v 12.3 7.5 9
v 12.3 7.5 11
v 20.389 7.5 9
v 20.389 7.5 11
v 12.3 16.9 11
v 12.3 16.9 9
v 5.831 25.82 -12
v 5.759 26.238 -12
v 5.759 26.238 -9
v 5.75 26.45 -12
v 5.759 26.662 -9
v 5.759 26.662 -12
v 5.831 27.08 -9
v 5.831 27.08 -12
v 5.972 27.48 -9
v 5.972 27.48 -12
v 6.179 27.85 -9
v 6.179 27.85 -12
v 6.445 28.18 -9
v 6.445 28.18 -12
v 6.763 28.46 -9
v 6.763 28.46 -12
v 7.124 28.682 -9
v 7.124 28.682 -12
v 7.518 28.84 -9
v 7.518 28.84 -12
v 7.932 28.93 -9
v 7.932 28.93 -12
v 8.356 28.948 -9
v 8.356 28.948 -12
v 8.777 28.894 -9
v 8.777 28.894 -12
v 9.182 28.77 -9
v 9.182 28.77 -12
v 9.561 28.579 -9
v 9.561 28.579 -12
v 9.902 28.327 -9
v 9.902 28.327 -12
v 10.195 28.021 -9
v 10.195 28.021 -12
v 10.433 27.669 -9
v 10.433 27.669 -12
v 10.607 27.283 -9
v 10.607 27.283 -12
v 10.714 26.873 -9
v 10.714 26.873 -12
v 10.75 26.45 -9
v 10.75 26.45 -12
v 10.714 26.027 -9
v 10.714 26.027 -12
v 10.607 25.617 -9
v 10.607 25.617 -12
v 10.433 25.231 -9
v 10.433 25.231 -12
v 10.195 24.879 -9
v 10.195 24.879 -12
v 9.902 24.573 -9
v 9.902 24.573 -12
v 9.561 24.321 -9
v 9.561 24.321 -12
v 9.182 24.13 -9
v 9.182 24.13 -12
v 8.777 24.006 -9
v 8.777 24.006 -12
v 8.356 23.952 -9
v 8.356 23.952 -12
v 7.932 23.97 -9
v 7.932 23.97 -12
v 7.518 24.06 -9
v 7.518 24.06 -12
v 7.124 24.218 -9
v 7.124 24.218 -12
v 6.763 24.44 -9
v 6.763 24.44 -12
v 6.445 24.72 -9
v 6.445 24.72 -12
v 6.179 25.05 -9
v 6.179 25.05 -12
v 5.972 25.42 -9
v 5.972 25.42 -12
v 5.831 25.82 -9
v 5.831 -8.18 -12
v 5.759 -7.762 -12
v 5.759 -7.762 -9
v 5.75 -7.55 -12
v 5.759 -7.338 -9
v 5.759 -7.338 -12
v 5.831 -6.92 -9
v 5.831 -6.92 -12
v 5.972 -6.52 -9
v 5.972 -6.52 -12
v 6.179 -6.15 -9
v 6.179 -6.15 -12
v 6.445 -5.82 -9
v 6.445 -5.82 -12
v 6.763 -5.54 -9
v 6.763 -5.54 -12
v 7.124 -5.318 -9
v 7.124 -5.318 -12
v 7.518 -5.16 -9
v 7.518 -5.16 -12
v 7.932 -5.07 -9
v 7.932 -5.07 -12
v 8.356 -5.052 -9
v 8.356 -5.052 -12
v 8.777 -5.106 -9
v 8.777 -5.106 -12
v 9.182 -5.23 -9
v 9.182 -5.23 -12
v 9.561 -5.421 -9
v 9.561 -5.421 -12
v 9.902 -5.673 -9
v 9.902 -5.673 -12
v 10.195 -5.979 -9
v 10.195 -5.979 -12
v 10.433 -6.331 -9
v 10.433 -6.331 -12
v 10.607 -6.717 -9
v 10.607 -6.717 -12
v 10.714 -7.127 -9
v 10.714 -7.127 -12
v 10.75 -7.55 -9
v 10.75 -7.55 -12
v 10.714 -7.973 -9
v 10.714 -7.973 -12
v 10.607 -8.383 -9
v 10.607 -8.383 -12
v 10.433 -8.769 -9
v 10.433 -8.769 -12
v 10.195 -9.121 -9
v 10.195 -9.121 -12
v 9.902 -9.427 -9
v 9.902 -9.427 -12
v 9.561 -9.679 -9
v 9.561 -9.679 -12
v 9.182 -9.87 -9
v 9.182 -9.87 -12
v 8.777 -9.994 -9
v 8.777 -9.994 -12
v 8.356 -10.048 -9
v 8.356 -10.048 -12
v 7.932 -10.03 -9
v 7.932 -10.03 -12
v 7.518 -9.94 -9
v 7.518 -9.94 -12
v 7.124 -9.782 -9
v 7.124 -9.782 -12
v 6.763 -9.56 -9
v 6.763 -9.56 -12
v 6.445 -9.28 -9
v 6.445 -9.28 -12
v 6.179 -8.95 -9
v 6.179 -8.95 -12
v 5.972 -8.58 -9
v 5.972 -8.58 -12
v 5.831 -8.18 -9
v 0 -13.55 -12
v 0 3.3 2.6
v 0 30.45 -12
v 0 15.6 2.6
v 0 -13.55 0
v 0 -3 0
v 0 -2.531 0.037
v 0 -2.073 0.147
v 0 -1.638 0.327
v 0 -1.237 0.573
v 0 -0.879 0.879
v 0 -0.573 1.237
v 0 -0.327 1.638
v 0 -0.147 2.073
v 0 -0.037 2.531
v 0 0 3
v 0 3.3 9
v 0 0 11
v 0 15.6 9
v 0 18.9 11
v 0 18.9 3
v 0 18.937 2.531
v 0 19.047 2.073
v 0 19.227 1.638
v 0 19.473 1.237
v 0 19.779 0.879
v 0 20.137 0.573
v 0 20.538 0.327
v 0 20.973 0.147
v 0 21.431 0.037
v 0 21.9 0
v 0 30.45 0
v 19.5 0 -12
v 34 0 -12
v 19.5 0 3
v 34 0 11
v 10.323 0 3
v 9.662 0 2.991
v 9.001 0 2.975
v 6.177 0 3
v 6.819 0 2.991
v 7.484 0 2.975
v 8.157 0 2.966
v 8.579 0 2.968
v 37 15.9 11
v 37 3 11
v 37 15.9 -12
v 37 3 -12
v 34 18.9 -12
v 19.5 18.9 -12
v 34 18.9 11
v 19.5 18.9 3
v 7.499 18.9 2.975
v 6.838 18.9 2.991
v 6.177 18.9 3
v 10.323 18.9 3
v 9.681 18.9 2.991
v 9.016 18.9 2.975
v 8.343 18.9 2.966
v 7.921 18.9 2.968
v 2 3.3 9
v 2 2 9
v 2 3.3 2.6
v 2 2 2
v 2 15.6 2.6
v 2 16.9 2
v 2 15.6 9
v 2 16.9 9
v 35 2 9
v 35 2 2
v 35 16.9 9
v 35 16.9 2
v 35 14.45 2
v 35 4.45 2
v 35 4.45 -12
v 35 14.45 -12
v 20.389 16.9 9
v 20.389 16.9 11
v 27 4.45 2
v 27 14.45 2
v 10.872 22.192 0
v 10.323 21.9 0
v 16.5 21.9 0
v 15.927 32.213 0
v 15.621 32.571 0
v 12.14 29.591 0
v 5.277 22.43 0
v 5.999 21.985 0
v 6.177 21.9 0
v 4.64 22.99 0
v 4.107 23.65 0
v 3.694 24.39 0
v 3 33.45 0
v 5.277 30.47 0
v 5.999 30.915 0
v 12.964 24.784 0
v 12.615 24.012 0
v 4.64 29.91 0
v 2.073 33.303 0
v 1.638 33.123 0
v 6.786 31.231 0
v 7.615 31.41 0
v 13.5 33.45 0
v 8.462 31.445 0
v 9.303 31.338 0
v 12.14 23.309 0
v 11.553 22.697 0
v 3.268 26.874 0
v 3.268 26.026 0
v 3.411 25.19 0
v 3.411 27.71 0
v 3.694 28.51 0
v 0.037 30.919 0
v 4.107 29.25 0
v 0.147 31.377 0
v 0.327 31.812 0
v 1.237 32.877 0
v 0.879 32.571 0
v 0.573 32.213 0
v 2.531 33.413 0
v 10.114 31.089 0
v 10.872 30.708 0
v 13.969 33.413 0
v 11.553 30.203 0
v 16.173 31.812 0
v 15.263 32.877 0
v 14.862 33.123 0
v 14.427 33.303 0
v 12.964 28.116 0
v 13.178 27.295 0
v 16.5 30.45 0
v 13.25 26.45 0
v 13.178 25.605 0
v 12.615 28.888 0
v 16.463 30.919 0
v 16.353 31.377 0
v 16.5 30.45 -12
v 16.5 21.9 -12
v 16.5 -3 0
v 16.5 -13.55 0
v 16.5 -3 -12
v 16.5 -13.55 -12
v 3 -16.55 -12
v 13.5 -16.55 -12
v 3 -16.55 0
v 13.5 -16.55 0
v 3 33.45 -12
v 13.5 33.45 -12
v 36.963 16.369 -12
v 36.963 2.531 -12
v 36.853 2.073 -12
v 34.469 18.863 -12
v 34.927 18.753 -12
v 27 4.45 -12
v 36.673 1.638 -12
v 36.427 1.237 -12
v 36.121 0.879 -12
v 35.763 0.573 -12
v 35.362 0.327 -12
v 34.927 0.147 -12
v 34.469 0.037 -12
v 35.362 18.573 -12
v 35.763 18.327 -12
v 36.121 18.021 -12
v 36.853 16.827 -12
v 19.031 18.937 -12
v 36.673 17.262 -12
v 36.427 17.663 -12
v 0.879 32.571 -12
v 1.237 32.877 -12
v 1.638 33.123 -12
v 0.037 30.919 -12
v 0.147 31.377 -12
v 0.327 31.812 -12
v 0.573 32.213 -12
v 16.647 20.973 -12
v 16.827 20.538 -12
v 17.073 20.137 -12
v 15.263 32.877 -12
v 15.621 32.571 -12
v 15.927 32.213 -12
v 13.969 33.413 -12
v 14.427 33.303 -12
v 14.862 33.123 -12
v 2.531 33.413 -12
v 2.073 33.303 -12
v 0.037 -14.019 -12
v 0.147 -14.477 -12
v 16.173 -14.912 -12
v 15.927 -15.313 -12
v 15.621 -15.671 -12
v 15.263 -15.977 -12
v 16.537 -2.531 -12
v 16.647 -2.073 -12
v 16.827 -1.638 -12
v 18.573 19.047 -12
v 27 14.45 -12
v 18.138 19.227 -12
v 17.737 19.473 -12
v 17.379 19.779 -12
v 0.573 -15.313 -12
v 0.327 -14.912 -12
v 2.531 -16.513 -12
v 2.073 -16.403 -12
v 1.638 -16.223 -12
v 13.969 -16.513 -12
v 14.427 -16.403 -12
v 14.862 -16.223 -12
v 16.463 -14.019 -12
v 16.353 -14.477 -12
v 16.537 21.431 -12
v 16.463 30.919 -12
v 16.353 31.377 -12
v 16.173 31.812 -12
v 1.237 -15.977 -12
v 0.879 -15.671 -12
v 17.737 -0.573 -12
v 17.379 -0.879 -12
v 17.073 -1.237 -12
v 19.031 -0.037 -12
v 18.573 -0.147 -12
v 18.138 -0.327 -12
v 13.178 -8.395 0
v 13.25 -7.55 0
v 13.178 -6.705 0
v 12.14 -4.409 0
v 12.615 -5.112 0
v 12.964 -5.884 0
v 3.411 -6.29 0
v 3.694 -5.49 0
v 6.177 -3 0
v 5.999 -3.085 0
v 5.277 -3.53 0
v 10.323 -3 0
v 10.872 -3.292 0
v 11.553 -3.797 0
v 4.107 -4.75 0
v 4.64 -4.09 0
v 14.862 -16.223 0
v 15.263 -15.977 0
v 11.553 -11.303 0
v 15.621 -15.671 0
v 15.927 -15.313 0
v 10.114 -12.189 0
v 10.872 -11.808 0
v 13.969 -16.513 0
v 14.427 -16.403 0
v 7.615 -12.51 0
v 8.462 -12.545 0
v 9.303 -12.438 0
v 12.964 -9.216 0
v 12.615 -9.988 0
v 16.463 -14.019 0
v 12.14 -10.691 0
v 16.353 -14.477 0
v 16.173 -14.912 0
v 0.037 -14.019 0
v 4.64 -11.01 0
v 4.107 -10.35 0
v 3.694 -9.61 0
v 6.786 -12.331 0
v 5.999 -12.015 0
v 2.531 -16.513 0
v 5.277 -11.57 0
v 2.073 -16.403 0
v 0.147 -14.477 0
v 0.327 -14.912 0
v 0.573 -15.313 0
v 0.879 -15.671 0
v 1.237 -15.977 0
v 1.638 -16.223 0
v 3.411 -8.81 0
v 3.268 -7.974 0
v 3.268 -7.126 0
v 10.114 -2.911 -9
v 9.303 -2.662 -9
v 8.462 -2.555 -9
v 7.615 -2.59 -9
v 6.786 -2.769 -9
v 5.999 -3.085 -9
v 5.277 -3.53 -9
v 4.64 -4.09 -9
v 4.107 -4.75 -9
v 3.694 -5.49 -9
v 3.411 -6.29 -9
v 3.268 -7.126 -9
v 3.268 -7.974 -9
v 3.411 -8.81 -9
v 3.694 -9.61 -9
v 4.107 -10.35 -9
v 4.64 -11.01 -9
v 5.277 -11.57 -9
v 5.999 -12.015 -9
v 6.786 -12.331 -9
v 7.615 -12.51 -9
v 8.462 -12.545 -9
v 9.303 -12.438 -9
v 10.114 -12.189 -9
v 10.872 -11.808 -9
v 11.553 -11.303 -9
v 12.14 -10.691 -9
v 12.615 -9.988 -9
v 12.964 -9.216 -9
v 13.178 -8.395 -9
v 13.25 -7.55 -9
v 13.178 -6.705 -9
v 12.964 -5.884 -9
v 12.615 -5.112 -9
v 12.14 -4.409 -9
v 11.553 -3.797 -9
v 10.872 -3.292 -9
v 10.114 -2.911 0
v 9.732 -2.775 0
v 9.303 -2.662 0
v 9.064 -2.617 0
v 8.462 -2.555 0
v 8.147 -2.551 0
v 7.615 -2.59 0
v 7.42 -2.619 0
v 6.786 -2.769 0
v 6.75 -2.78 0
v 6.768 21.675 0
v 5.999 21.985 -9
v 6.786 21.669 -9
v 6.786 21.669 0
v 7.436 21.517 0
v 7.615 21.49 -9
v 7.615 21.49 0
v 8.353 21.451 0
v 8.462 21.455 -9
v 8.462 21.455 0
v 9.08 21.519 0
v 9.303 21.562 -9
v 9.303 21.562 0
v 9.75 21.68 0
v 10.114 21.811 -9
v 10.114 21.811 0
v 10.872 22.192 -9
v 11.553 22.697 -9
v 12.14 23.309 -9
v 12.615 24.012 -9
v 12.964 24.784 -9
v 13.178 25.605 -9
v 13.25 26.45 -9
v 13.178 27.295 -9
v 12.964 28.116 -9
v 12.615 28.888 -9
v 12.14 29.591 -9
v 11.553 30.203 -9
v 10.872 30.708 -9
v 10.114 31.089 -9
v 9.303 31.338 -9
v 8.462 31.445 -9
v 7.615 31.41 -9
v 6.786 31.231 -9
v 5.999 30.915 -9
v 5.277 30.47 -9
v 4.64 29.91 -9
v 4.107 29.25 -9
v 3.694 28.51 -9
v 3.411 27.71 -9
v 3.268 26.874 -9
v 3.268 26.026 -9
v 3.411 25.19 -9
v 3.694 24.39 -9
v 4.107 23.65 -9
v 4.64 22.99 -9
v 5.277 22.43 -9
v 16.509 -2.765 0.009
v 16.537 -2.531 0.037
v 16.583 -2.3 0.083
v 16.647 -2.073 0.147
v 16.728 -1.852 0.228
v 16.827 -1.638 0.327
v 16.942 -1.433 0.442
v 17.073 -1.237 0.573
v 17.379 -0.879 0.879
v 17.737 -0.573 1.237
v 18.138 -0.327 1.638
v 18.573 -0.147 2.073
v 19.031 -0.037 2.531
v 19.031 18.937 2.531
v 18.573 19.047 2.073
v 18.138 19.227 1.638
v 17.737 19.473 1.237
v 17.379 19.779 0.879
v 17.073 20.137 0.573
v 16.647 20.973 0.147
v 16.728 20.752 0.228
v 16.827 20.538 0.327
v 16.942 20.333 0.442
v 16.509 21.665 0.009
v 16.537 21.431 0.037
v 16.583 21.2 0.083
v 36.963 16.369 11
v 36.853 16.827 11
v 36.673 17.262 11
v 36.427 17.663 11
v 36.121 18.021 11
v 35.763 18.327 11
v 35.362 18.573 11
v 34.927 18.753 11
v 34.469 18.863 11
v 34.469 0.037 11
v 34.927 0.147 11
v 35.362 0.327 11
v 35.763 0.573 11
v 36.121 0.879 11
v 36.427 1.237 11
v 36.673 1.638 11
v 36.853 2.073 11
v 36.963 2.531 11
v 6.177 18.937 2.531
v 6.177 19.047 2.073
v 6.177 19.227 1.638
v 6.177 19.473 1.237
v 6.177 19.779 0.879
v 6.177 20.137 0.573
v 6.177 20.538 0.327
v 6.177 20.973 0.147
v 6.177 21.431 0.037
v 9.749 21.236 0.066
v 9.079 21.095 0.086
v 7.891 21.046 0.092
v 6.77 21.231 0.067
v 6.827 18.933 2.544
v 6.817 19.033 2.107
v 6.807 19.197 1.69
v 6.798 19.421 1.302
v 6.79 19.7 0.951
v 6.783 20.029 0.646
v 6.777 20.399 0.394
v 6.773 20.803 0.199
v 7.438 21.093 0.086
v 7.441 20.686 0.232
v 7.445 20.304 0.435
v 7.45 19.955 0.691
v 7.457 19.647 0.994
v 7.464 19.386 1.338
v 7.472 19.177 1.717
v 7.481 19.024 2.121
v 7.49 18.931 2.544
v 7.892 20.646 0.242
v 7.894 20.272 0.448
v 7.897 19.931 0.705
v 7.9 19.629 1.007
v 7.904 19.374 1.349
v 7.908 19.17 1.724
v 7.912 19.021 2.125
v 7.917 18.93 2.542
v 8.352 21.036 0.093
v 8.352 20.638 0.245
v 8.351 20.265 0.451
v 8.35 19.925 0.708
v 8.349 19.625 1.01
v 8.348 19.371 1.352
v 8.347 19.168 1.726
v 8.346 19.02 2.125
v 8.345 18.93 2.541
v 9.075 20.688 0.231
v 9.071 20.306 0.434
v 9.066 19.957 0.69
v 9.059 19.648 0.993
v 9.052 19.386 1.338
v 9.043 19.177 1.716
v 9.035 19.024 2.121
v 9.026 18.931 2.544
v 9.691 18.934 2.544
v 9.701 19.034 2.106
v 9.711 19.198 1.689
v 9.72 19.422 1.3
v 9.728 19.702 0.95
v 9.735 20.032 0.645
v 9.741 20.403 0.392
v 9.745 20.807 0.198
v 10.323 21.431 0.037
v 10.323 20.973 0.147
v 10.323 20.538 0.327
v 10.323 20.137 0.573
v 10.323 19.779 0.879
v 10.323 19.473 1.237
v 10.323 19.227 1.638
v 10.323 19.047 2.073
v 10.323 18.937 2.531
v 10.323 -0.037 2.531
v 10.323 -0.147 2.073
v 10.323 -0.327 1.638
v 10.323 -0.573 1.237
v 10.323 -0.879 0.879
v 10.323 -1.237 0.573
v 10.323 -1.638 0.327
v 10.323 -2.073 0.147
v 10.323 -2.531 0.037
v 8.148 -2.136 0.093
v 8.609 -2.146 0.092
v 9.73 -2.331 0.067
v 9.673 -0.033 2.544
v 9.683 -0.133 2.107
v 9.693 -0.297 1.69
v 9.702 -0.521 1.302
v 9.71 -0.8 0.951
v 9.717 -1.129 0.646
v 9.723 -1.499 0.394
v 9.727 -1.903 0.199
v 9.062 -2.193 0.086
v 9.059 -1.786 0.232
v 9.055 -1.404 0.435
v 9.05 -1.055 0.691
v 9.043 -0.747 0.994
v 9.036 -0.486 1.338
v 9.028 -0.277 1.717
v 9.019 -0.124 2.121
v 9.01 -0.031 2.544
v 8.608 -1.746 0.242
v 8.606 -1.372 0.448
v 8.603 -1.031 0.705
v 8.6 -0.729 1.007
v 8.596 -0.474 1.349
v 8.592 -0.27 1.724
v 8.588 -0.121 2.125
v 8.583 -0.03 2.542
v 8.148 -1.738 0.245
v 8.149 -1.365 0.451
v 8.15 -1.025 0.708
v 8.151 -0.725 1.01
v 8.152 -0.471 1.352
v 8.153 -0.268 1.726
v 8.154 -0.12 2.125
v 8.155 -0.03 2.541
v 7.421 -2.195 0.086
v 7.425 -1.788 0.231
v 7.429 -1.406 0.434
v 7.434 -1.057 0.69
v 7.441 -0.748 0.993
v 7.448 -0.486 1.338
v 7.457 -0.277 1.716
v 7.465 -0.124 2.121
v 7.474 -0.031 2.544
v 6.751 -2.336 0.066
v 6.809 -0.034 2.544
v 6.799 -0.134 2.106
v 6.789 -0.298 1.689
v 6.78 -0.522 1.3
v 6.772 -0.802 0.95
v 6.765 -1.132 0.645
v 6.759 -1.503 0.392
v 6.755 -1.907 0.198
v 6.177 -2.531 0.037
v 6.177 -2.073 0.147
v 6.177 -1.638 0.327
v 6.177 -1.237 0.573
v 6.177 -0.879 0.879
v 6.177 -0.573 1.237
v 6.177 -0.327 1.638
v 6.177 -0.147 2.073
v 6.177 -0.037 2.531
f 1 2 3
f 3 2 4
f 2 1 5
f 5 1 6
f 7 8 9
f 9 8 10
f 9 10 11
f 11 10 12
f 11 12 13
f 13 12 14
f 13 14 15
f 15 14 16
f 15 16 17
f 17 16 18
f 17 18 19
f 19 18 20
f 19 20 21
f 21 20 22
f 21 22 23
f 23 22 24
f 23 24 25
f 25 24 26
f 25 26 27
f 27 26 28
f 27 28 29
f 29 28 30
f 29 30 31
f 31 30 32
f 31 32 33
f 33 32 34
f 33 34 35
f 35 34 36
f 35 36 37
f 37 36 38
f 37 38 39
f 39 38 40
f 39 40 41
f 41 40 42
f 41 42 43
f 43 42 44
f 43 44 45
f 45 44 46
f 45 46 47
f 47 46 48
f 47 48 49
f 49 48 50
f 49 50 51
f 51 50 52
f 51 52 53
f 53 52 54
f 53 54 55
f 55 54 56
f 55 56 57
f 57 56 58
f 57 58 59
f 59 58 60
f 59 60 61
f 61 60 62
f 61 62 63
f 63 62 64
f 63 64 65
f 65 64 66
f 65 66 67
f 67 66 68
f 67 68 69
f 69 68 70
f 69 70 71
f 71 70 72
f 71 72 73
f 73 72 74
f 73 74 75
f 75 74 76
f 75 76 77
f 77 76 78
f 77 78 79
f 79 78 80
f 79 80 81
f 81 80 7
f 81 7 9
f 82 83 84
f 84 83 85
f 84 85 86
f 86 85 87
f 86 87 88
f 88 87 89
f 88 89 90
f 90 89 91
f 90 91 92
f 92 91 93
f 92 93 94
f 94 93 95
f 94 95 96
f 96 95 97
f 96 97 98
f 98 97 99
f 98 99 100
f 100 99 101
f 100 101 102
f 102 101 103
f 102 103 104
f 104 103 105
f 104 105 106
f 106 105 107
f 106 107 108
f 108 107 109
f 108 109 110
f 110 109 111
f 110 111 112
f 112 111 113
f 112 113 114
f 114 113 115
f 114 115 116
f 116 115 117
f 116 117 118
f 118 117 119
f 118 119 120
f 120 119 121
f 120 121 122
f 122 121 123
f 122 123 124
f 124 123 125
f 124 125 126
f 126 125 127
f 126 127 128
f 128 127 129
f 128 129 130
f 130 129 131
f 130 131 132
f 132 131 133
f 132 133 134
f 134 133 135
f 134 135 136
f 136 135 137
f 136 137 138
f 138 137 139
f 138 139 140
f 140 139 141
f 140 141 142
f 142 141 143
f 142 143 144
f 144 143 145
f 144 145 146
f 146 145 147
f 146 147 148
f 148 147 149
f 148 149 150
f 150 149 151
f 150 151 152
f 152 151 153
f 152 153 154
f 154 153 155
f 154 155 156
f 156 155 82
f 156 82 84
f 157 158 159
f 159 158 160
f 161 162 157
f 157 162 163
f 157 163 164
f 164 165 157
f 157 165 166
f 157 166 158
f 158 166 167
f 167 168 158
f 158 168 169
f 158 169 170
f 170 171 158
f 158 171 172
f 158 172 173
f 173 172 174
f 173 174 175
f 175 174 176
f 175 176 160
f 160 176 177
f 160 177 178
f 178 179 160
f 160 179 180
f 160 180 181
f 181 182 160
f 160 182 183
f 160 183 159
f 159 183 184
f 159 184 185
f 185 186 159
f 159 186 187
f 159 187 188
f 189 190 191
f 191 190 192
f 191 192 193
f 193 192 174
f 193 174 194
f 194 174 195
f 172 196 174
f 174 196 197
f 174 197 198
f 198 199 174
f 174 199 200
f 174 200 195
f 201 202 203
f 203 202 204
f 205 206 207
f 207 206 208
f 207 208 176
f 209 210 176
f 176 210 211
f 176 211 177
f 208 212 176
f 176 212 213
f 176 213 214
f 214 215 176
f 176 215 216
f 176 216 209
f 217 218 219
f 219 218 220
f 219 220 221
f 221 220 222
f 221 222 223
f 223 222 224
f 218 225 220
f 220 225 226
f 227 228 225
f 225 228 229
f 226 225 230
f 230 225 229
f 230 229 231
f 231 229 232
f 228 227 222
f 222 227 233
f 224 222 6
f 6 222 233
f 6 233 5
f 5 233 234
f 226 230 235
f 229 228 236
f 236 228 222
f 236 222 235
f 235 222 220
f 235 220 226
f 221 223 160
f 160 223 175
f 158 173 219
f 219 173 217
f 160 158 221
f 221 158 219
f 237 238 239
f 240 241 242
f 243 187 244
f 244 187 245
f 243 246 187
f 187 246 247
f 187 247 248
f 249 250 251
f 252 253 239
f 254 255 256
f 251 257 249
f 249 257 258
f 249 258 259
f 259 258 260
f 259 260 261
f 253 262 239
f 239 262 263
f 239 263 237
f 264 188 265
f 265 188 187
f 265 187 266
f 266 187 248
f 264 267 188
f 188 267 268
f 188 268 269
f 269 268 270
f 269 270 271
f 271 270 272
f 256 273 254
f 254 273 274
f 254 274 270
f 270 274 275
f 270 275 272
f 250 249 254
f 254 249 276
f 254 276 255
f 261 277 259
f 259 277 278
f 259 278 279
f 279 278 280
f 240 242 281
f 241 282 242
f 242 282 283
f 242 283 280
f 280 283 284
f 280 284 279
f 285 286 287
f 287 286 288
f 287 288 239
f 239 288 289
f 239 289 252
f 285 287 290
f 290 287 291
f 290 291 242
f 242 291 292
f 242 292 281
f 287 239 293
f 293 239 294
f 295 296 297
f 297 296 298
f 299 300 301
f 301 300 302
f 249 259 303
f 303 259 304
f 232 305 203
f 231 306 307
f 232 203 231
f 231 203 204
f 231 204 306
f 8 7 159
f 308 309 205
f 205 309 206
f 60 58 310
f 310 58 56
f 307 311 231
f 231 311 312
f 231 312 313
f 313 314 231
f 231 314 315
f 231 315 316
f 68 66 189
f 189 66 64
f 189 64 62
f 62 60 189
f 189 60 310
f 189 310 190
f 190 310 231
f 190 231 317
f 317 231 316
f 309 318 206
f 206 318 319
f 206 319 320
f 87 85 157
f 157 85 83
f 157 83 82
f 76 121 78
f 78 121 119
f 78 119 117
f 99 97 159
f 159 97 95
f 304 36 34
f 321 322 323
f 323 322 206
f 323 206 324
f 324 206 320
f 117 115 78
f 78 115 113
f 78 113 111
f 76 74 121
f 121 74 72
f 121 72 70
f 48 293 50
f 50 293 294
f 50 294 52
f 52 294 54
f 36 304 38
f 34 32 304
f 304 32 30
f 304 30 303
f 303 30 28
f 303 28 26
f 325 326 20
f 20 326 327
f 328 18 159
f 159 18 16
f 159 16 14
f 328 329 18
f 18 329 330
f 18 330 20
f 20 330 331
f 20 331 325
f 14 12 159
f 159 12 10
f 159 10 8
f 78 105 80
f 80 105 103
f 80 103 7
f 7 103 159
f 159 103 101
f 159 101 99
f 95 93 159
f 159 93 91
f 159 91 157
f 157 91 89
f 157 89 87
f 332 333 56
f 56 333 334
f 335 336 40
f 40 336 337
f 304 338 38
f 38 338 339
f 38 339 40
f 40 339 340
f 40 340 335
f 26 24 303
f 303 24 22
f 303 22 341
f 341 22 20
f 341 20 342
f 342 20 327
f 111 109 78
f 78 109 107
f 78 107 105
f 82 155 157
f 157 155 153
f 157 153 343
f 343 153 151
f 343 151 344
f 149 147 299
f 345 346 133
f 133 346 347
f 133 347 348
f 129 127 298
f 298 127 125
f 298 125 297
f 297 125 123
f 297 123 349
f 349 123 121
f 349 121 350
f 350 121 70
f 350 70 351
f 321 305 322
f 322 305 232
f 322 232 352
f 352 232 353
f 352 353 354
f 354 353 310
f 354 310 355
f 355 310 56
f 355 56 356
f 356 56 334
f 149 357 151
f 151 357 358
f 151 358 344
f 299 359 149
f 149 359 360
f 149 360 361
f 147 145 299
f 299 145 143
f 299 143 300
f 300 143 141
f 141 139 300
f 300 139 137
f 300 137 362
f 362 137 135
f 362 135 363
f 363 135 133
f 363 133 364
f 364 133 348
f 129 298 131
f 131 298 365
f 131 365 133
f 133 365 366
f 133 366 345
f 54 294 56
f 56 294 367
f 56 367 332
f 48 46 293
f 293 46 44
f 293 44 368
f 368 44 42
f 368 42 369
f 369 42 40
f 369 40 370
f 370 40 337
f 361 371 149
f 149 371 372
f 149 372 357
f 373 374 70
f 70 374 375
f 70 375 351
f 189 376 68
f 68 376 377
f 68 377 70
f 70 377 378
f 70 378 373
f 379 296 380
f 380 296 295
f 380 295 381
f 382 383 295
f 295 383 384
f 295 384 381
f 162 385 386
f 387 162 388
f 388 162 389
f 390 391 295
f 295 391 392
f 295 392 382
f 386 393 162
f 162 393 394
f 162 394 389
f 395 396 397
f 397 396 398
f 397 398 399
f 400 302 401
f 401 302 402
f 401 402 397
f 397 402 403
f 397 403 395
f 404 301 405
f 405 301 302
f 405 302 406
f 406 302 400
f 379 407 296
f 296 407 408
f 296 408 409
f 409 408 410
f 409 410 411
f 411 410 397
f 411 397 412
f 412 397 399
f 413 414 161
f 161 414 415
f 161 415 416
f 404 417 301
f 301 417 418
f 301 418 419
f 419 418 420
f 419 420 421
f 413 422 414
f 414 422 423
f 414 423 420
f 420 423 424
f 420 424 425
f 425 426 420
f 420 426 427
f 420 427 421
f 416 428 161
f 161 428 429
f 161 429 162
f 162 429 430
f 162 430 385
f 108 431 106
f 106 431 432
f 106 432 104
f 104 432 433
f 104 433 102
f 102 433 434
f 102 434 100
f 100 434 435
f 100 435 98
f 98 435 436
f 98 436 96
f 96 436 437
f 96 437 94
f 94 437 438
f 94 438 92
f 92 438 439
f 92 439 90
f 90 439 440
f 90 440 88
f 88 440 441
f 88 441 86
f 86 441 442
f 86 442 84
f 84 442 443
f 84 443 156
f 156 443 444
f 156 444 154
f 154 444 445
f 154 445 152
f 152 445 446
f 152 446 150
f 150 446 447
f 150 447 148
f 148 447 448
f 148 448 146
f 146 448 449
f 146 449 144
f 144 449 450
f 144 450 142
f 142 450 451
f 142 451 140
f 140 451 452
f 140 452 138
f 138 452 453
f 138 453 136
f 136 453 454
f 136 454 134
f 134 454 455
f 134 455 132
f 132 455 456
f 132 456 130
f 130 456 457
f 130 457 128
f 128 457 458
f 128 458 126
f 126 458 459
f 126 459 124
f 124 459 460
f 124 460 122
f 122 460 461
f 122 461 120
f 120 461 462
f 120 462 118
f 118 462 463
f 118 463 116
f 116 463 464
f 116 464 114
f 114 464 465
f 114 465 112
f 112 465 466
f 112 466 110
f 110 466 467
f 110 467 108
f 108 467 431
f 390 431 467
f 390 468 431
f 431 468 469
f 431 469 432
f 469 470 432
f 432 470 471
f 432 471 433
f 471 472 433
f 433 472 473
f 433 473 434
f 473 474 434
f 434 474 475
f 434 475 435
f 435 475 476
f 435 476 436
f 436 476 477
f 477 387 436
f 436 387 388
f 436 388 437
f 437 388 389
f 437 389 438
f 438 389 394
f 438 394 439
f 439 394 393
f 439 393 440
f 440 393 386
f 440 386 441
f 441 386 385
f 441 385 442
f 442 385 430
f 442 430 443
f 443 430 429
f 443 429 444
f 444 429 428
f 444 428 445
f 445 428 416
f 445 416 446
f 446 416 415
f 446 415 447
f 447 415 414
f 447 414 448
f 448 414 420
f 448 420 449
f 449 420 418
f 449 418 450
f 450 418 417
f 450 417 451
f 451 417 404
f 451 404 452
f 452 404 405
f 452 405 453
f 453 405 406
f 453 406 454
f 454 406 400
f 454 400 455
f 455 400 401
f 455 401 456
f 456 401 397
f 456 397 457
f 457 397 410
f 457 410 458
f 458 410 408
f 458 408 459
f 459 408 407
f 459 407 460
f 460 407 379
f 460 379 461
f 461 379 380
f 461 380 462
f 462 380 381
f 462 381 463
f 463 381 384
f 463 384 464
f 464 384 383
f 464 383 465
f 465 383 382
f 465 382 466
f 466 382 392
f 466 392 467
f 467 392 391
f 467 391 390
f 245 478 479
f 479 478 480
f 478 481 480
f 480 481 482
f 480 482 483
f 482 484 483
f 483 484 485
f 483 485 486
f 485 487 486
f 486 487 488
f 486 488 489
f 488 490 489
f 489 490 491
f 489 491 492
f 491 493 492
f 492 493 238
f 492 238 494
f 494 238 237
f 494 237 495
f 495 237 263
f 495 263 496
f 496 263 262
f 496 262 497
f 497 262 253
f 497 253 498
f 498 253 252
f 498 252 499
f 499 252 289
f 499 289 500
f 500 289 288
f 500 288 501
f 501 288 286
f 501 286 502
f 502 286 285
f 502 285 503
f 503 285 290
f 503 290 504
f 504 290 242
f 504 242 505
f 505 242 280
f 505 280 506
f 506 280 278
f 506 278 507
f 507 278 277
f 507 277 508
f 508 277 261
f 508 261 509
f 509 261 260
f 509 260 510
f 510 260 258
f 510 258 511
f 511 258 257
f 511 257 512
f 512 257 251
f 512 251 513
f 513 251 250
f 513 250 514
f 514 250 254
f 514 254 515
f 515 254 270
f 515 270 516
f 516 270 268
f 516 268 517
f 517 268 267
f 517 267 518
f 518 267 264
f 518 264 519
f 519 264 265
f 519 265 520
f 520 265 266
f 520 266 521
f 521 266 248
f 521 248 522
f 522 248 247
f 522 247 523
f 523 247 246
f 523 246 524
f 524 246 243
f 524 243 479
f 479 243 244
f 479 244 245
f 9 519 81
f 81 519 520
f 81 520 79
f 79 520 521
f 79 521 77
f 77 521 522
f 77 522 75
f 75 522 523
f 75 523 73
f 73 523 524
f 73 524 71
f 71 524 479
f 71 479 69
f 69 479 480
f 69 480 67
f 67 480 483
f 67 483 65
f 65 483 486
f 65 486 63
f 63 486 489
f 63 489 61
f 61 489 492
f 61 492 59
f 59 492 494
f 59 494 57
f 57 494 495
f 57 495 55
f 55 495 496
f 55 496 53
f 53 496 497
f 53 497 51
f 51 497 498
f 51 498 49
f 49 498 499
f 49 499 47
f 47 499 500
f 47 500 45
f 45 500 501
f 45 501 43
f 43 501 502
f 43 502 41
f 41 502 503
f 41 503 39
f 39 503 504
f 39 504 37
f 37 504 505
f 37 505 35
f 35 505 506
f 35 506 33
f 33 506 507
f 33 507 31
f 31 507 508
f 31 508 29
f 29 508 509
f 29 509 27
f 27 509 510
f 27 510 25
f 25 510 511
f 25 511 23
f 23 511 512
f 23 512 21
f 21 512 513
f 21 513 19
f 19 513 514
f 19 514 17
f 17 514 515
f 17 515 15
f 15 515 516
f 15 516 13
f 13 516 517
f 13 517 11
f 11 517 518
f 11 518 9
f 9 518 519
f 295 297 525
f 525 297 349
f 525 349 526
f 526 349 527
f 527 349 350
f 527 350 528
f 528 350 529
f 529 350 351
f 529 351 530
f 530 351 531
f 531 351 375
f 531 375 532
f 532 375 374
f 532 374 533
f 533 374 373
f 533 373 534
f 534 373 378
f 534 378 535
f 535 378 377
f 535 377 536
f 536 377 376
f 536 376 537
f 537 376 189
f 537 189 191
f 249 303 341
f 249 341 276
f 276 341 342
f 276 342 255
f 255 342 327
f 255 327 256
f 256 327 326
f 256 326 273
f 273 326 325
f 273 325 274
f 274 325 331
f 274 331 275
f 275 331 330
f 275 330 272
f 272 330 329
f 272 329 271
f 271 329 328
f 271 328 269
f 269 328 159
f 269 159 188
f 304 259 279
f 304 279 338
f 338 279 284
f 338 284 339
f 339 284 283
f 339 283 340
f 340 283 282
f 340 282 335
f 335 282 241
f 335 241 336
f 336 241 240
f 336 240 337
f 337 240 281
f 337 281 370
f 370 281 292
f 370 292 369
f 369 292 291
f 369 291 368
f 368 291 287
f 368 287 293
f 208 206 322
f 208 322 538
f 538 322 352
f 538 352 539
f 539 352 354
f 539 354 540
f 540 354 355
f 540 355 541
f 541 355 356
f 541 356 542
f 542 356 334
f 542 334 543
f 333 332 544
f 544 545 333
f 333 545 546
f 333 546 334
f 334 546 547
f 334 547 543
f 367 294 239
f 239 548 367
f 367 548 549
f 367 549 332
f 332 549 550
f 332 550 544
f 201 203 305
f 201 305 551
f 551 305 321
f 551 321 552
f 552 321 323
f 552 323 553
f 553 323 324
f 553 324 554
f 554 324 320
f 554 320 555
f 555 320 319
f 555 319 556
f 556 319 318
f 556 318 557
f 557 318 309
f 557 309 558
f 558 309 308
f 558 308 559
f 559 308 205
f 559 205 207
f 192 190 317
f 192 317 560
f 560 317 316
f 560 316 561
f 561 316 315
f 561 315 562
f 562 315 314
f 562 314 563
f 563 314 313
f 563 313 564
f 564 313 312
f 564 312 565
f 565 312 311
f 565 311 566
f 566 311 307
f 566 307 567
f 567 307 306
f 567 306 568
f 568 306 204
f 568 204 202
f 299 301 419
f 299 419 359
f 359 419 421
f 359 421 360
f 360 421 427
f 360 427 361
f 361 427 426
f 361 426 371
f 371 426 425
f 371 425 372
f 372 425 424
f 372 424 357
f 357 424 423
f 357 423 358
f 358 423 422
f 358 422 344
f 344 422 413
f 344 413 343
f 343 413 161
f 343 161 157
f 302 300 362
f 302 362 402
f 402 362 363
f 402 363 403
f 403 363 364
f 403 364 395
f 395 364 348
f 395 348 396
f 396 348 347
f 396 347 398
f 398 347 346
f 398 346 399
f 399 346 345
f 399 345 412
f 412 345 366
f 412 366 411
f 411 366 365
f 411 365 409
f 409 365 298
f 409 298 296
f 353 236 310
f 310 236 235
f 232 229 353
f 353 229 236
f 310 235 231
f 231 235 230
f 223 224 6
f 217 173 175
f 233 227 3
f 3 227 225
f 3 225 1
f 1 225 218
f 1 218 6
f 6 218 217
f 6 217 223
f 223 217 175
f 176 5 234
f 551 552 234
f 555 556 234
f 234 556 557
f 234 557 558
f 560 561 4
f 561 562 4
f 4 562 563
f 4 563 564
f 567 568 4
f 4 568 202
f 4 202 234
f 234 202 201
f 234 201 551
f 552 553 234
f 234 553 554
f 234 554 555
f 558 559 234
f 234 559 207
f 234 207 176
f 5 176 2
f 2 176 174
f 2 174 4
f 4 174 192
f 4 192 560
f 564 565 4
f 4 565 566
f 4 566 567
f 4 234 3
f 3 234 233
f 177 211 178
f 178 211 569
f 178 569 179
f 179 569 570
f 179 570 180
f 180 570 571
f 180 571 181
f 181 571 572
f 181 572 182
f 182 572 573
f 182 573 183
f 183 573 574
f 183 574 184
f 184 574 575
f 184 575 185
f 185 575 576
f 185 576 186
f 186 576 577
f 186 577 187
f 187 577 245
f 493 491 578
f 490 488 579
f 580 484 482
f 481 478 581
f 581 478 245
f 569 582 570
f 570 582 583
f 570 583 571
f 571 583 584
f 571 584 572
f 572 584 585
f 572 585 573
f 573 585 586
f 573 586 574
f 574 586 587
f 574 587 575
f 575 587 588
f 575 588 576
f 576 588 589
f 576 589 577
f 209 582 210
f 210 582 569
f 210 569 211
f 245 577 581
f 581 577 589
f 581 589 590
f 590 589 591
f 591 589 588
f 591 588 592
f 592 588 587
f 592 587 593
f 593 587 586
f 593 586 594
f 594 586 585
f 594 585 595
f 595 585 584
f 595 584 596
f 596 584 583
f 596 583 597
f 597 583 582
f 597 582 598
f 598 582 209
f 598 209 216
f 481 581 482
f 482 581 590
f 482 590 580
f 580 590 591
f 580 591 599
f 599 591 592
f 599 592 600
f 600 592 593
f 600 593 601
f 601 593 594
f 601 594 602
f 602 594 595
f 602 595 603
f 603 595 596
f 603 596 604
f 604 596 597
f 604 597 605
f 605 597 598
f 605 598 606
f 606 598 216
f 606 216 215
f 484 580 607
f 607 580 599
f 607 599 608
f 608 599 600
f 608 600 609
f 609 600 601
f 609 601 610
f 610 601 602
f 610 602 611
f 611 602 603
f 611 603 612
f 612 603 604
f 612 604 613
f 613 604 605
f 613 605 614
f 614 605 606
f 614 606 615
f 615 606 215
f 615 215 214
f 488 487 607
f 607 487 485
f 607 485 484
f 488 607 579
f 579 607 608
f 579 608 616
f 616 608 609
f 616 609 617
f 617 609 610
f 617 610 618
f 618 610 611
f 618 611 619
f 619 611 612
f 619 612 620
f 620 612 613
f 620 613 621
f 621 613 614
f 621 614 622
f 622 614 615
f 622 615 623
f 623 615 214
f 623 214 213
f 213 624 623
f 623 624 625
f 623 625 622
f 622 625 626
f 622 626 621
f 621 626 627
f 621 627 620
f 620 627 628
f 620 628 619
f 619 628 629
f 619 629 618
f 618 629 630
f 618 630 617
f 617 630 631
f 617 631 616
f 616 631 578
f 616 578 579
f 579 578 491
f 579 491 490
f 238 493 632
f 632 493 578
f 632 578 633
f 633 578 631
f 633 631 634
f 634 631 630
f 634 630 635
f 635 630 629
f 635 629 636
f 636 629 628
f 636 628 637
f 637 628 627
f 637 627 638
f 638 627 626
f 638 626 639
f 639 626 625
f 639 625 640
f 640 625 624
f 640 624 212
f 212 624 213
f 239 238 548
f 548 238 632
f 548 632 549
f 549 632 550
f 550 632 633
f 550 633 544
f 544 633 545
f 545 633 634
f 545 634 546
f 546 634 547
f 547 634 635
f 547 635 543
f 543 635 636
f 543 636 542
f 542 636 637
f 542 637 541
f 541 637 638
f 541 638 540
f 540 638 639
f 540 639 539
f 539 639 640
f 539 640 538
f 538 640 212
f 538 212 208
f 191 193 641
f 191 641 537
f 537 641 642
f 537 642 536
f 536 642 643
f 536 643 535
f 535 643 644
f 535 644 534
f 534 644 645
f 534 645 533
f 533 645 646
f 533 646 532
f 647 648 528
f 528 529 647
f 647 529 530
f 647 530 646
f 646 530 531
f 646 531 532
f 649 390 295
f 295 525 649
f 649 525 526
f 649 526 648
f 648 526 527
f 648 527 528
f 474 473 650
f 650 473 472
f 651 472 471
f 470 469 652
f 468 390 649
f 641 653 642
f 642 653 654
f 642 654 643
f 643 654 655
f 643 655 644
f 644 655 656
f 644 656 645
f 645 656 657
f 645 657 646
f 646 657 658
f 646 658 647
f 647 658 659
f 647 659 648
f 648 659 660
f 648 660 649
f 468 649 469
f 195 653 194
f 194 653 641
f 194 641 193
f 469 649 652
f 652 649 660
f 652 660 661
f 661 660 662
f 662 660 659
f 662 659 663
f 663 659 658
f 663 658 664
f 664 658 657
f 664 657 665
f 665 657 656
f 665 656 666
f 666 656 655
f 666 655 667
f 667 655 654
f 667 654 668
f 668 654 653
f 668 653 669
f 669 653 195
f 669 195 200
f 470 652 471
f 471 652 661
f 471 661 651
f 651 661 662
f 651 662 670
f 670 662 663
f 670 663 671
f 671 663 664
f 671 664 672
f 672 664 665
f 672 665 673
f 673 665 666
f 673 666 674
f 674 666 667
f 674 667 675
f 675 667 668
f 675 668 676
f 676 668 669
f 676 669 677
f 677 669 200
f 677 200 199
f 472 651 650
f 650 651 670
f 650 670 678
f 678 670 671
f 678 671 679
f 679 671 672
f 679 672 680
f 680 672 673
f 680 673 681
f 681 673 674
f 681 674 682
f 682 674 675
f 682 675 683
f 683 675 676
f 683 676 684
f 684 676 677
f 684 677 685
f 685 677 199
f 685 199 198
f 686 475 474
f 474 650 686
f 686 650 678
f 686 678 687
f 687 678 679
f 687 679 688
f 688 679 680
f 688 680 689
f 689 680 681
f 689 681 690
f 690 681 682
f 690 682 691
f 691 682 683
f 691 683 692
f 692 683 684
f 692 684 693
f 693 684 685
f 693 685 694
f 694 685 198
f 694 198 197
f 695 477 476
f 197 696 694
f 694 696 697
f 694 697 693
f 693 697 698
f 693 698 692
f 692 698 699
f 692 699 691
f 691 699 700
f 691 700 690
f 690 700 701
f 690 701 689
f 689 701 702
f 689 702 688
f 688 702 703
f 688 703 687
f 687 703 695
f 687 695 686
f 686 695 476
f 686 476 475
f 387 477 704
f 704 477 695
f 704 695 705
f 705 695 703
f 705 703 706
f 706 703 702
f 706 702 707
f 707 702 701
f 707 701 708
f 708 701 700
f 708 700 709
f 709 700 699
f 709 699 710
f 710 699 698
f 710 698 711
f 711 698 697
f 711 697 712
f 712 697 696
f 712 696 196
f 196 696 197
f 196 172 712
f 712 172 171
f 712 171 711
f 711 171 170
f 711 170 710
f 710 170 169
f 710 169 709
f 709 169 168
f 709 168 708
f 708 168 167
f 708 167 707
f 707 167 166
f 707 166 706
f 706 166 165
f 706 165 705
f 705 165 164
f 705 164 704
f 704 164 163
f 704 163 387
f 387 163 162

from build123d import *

# Parameters (mm, degrees)
CROQUIS1_W                 = 37
CROQUIS1_H                 = 18.9
SALIENTE_EXTRUIR1_DEPTH    = 9
VACIADO1_T                 = -2
CROQUIS2_W                 = 12.8
CROQUIS2_H                 = 12.3
CORTAR_EXTRUIR1_DEPTH      = 9
CROQUIS3_R                 = 2.5
SALIENTE_EXTRUIR2_DEPTH    = 12
CROQUIS4_R                 = 5
CORTAR_EXTRUIR2_DEPTH      = 9
REDONDEO1_R                = 3
CORTAR_EXTRUIR3_DEPTH      = 52.806394393
CORTAR_EXTRUIR3_DEPTH_BACK = 52.806394393
CROQUIS5_W                 = 8
CROQUIS5_H                 = 10
SALIENTE_EXTRUIR3_DEPTH    = 2
SALIENTE_EXTRUIR4_START    = 2
SALIENTE_EXTRUIR4_DEPTH    = 2
REDONDEO2_R                = 3


with BuildPart() as part:
    # Croquis1 → Saliente-Extruir1 (new body)
    with BuildSketch(Plane.XY):
        with Locations((18.5, 9.45)):
            Rectangle(CROQUIS1_W, CROQUIS1_H)
    extrude(amount=SALIENTE_EXTRUIR1_DEPTH)

    # Vaciado1
    vaciado1_openings = [part.faces().sort_by_distance(p)[0] for p in [
        (18.5, 9.45, 9),
    ]]
    offset(amount=VACIADO1_T, openings=vaciado1_openings, kind=Kind.INTERSECTION)

    # Croquis2 → Cortar-Extruir1 (cut)
    with BuildSketch(Plane.ZY):
        with Locations((9, 9.45)):
            Rectangle(CROQUIS2_W, CROQUIS2_H)
    extrude(amount=-CORTAR_EXTRUIR1_DEPTH, mode=Mode.SUBTRACT)

    # Croquis3 → Saliente-Extruir2 (add)
    with BuildSketch(Plane(origin=(0, 0, 0), x_dir=(-1, 0, 0), z_dir=(0, 0, -1))):
        Polygon((-16.5, -16.55), (0, -16.55), (0, 33.45), (-16.5, 33.45), (-16.5, 18.9), (-37, 18.9), (-37, 0), (-16.5, 0), align=None)
        with Locations((-8.25, 26.45)):
            Circle(CROQUIS3_R, mode=Mode.SUBTRACT)
        with Locations((-8.25, -7.55)):
            Circle(CROQUIS3_R, mode=Mode.SUBTRACT)
    extrude(amount=SALIENTE_EXTRUIR2_DEPTH)

    # Croquis4 → Cortar-Extruir2 (cut)
    with BuildSketch(Plane.XY):
        with Locations((8.25, -7.55)):
            Circle(CROQUIS4_R)
        with Locations((8.25, 26.45)):
            Circle(CROQUIS4_R)
    extrude(amount=-CORTAR_EXTRUIR2_DEPTH, mode=Mode.SUBTRACT)

    # Redondeo1
    redondeo1_edges = [part.edges().sort_by_distance(p)[0] for p in [
        (16.5, 33.45, -6),
        (16.5, 18.9, -6),
        (16.5, 0, -6),
        (16.5, -16.55, -6),
        (0, -16.55, -6),
        (0, 33.45, -6),
        (37, 18.9, -1.5),
        (37, 0, -1.5),
    ]]
    fillet(redondeo1_edges, radius=REDONDEO1_R)

    # Croquis5 → Cortar-Extruir3 (cut, two sides: drawn at the far end of the back side and taken through both)
    with BuildSketch(Plane.XY.offset(2).offset(-CORTAR_EXTRUIR3_DEPTH_BACK)):
        with Locations((31, 9.45)):
            Rectangle(CROQUIS5_W, CROQUIS5_H)
    extrude(amount=CORTAR_EXTRUIR3_DEPTH + CORTAR_EXTRUIR3_DEPTH_BACK, mode=Mode.SUBTRACT)

    # Croquis7 → Saliente-Extruir3 (add)
    with BuildSketch(Plane.XY.offset(9)):
        Polygon((0, 18.9), (12.3, 18.9), (12.3, 7.5), (20.514130343, 7.5), (20.514130343, 2), (20.514130343, 0), (12.3, 0), (0, 0), align=None)
    extrude(amount=SALIENTE_EXTRUIR3_DEPTH)

    # Croquis8 → Saliente-Extruir4 (add)
    with BuildSketch(Plane.XY.offset(9).offset(SALIENTE_EXTRUIR4_START)):
        with BuildLine():
            Line((35, 2), (20.514130343, 2))
            Line((20.514130343, 2), (20.514130343, 0))
            Line((20.514130343, 0), (34, 0))
            ThreePointArc((34, 0), (36.121320344, 0.878679656), (37, 3))
            Line((37, 3), (37, 15.9))
            ThreePointArc((37, 15.9), (36.121320344, 18.021320344), (34, 18.9))
            Line((34, 18.9), (12.3, 18.9))
            Line((12.3, 18.9), (12.3, 16.9))
            Line((12.3, 16.9), (20.389072173, 16.9))
            Line((20.389072173, 16.9), (35, 16.9))
            Line((35, 16.9), (35, 2))
        make_face()
        Polygon((20.389072173, 2), (20.514130343, 2), (35, 2), (35, 16.9), (20.389072173, 16.9), align=None)
    extrude(amount=-SALIENTE_EXTRUIR4_DEPTH)

    # Redondeo2
    redondeo2_edges = [part.edges().sort_by_distance(p)[0] for p in [
        (9.75, 18.9, 0),
        (9.75, 0, 0),
    ]]
    fillet(redondeo2_edges, radius=REDONDEO2_R)


solid = part.part
